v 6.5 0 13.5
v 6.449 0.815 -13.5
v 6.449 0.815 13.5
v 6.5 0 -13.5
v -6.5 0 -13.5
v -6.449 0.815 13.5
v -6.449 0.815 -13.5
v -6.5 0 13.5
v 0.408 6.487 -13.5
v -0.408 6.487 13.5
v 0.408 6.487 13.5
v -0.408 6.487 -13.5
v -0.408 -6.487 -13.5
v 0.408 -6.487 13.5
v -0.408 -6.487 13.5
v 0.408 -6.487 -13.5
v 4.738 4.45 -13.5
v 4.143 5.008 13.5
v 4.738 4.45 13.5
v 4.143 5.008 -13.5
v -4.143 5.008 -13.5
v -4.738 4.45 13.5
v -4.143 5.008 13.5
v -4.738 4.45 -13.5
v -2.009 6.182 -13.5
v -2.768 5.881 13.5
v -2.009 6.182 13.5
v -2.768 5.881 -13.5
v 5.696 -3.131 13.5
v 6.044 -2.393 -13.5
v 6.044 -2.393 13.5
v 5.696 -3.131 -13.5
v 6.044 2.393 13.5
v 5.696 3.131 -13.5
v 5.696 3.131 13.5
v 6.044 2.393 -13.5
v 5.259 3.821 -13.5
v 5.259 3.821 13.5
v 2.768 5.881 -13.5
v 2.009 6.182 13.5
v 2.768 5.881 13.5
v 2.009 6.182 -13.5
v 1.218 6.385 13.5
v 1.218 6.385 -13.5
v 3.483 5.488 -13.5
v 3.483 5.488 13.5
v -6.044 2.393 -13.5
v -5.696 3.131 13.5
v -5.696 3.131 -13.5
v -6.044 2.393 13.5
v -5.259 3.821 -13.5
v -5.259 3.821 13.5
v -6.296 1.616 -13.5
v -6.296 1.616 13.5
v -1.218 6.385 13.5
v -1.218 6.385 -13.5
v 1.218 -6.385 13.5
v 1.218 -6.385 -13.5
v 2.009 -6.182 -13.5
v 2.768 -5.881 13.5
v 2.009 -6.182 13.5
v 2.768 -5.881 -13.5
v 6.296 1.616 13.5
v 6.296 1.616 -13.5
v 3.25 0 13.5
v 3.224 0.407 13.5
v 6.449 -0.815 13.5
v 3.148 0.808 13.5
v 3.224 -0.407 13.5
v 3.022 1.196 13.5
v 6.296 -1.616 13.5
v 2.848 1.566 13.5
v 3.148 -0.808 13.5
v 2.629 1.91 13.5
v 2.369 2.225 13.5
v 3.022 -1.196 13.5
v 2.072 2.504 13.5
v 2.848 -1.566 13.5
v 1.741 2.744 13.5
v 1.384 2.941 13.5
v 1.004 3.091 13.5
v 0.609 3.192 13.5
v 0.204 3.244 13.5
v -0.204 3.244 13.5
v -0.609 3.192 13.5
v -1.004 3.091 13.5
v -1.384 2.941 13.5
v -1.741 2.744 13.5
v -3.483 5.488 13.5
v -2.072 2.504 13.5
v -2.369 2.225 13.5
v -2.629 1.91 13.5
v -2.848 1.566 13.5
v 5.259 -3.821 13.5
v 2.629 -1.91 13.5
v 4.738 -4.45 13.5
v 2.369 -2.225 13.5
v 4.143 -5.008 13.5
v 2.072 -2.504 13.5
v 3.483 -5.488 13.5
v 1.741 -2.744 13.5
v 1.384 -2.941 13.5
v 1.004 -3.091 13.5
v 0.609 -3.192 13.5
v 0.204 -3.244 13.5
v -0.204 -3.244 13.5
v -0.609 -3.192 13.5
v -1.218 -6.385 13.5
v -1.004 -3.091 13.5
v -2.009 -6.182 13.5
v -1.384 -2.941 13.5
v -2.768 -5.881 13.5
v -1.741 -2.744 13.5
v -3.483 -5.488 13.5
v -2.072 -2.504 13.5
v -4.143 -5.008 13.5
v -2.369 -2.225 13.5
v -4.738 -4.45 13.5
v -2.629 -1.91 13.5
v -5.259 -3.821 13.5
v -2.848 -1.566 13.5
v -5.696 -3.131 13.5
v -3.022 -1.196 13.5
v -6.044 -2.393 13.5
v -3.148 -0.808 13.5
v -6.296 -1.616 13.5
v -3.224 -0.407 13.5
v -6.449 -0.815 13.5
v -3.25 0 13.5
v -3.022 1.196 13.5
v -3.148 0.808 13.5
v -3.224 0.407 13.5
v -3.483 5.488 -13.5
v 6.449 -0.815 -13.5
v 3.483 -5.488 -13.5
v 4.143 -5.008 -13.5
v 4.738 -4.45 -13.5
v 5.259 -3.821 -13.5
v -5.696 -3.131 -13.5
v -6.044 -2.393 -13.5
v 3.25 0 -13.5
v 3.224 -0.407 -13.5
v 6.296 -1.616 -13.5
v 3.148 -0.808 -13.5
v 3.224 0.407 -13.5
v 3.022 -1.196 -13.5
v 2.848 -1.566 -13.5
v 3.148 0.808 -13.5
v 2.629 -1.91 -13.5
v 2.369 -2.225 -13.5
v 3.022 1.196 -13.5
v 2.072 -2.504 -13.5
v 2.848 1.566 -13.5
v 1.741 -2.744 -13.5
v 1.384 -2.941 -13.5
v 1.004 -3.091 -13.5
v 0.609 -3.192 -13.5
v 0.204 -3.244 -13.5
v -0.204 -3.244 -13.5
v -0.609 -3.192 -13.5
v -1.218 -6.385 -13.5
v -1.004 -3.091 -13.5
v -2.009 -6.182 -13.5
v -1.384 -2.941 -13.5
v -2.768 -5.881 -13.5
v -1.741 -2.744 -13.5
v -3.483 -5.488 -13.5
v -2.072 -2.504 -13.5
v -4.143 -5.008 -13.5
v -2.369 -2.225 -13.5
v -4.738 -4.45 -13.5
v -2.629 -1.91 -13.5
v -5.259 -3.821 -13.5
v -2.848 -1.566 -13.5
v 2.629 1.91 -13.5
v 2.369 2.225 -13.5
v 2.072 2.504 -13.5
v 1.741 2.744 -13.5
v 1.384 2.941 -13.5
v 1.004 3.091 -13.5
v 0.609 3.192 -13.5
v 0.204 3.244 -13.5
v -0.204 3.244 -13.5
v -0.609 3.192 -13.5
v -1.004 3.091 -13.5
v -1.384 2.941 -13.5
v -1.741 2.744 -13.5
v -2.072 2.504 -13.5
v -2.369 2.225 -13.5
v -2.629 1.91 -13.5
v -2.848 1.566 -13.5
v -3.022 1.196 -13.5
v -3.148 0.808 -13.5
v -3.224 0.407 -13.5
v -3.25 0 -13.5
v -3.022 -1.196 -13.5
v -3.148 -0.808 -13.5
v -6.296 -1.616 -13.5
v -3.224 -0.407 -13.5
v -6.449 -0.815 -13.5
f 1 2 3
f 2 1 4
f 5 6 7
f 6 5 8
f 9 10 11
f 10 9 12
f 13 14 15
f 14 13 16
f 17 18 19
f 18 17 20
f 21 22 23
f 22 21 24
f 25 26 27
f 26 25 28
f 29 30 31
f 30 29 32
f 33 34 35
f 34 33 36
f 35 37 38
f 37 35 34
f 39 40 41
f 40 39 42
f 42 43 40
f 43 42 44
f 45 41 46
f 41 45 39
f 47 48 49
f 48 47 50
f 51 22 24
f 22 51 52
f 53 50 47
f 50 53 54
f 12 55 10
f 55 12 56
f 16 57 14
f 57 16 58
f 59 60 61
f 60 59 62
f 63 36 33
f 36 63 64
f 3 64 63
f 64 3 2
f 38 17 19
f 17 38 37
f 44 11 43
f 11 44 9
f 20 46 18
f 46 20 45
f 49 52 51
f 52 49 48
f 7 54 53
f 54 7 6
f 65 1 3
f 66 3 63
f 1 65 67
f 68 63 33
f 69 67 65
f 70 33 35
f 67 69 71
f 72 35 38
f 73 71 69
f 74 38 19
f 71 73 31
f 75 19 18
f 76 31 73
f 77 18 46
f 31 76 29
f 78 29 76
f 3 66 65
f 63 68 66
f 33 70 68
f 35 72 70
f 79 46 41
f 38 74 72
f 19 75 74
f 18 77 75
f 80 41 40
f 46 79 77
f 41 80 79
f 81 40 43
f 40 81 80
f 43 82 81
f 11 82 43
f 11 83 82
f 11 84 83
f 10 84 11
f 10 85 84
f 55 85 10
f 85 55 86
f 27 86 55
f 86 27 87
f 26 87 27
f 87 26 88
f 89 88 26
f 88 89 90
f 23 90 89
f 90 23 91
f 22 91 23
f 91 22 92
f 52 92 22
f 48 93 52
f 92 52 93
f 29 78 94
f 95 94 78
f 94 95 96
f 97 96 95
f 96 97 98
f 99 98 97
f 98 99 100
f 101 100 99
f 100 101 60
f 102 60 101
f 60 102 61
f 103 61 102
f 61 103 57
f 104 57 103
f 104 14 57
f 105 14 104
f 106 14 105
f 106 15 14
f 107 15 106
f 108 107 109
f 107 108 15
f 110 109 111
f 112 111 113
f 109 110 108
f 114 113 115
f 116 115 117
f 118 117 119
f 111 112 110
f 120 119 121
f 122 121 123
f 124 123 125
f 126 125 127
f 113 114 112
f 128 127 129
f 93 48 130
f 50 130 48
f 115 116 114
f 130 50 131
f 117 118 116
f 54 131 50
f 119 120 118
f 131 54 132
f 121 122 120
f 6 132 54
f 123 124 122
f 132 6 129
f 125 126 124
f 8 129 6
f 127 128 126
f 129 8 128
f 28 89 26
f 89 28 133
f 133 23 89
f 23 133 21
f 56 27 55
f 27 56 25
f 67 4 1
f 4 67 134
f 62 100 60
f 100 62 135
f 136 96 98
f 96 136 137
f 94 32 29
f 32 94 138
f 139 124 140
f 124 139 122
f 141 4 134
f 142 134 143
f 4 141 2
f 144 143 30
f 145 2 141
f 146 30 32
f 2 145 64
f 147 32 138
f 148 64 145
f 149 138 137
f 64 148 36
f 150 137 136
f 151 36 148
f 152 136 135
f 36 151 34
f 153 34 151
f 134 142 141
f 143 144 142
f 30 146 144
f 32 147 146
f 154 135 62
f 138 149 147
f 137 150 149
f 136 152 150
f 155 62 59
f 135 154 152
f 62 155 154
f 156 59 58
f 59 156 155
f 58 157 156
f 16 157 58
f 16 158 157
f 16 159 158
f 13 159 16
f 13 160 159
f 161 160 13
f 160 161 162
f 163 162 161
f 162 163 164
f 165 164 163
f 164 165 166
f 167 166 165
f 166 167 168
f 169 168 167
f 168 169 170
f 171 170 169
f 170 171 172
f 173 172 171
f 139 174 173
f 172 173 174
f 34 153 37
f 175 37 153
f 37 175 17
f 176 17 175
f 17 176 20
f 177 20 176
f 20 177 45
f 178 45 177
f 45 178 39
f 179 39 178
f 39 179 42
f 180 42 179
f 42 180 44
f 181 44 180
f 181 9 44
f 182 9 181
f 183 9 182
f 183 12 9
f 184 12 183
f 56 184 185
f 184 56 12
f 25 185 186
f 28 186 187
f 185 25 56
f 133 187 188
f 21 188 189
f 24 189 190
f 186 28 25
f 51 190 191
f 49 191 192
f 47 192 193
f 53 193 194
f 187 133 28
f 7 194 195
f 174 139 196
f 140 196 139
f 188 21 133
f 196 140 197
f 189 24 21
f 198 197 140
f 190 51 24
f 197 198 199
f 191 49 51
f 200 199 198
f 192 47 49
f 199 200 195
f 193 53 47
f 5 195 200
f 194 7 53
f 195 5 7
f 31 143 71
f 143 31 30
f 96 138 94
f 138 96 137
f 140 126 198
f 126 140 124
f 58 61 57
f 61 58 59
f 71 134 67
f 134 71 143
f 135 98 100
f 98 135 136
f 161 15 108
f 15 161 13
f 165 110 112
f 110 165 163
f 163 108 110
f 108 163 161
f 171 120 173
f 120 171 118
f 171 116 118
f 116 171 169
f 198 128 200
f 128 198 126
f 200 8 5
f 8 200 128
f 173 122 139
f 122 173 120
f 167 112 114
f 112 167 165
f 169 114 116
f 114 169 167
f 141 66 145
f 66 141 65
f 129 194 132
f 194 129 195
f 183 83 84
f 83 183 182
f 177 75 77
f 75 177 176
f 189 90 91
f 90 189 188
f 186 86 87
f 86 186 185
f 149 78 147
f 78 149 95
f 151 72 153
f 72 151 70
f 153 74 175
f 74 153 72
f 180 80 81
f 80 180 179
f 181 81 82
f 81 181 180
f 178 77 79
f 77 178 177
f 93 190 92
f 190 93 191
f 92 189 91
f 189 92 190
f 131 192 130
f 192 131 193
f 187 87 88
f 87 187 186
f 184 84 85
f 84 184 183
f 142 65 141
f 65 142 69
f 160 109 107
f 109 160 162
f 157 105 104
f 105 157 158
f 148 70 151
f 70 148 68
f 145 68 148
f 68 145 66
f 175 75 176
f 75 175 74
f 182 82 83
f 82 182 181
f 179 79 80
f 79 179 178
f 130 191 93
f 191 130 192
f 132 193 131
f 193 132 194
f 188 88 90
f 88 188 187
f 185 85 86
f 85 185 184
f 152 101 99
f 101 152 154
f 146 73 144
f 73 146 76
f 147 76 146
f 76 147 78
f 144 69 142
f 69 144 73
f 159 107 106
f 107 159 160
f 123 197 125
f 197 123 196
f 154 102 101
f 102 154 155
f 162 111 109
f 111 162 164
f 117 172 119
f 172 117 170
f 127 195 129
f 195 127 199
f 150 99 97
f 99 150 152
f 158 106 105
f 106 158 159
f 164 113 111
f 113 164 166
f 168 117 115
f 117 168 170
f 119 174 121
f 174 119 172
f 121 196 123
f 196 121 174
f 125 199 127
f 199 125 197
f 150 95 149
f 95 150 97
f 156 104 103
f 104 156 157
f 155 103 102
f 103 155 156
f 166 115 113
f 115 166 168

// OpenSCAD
$fn = 50;


difference() {
	union() {
		translate(v = [0, 0, -13.5000000000]) {
			cylinder(h = 27, r = 6.5000000000);
		}
	}
	union() {
		translate(v = [0, 0, -100.0000000000]) {
			cylinder(h = 200, r = 3.2500000000);
		}
	}
}
